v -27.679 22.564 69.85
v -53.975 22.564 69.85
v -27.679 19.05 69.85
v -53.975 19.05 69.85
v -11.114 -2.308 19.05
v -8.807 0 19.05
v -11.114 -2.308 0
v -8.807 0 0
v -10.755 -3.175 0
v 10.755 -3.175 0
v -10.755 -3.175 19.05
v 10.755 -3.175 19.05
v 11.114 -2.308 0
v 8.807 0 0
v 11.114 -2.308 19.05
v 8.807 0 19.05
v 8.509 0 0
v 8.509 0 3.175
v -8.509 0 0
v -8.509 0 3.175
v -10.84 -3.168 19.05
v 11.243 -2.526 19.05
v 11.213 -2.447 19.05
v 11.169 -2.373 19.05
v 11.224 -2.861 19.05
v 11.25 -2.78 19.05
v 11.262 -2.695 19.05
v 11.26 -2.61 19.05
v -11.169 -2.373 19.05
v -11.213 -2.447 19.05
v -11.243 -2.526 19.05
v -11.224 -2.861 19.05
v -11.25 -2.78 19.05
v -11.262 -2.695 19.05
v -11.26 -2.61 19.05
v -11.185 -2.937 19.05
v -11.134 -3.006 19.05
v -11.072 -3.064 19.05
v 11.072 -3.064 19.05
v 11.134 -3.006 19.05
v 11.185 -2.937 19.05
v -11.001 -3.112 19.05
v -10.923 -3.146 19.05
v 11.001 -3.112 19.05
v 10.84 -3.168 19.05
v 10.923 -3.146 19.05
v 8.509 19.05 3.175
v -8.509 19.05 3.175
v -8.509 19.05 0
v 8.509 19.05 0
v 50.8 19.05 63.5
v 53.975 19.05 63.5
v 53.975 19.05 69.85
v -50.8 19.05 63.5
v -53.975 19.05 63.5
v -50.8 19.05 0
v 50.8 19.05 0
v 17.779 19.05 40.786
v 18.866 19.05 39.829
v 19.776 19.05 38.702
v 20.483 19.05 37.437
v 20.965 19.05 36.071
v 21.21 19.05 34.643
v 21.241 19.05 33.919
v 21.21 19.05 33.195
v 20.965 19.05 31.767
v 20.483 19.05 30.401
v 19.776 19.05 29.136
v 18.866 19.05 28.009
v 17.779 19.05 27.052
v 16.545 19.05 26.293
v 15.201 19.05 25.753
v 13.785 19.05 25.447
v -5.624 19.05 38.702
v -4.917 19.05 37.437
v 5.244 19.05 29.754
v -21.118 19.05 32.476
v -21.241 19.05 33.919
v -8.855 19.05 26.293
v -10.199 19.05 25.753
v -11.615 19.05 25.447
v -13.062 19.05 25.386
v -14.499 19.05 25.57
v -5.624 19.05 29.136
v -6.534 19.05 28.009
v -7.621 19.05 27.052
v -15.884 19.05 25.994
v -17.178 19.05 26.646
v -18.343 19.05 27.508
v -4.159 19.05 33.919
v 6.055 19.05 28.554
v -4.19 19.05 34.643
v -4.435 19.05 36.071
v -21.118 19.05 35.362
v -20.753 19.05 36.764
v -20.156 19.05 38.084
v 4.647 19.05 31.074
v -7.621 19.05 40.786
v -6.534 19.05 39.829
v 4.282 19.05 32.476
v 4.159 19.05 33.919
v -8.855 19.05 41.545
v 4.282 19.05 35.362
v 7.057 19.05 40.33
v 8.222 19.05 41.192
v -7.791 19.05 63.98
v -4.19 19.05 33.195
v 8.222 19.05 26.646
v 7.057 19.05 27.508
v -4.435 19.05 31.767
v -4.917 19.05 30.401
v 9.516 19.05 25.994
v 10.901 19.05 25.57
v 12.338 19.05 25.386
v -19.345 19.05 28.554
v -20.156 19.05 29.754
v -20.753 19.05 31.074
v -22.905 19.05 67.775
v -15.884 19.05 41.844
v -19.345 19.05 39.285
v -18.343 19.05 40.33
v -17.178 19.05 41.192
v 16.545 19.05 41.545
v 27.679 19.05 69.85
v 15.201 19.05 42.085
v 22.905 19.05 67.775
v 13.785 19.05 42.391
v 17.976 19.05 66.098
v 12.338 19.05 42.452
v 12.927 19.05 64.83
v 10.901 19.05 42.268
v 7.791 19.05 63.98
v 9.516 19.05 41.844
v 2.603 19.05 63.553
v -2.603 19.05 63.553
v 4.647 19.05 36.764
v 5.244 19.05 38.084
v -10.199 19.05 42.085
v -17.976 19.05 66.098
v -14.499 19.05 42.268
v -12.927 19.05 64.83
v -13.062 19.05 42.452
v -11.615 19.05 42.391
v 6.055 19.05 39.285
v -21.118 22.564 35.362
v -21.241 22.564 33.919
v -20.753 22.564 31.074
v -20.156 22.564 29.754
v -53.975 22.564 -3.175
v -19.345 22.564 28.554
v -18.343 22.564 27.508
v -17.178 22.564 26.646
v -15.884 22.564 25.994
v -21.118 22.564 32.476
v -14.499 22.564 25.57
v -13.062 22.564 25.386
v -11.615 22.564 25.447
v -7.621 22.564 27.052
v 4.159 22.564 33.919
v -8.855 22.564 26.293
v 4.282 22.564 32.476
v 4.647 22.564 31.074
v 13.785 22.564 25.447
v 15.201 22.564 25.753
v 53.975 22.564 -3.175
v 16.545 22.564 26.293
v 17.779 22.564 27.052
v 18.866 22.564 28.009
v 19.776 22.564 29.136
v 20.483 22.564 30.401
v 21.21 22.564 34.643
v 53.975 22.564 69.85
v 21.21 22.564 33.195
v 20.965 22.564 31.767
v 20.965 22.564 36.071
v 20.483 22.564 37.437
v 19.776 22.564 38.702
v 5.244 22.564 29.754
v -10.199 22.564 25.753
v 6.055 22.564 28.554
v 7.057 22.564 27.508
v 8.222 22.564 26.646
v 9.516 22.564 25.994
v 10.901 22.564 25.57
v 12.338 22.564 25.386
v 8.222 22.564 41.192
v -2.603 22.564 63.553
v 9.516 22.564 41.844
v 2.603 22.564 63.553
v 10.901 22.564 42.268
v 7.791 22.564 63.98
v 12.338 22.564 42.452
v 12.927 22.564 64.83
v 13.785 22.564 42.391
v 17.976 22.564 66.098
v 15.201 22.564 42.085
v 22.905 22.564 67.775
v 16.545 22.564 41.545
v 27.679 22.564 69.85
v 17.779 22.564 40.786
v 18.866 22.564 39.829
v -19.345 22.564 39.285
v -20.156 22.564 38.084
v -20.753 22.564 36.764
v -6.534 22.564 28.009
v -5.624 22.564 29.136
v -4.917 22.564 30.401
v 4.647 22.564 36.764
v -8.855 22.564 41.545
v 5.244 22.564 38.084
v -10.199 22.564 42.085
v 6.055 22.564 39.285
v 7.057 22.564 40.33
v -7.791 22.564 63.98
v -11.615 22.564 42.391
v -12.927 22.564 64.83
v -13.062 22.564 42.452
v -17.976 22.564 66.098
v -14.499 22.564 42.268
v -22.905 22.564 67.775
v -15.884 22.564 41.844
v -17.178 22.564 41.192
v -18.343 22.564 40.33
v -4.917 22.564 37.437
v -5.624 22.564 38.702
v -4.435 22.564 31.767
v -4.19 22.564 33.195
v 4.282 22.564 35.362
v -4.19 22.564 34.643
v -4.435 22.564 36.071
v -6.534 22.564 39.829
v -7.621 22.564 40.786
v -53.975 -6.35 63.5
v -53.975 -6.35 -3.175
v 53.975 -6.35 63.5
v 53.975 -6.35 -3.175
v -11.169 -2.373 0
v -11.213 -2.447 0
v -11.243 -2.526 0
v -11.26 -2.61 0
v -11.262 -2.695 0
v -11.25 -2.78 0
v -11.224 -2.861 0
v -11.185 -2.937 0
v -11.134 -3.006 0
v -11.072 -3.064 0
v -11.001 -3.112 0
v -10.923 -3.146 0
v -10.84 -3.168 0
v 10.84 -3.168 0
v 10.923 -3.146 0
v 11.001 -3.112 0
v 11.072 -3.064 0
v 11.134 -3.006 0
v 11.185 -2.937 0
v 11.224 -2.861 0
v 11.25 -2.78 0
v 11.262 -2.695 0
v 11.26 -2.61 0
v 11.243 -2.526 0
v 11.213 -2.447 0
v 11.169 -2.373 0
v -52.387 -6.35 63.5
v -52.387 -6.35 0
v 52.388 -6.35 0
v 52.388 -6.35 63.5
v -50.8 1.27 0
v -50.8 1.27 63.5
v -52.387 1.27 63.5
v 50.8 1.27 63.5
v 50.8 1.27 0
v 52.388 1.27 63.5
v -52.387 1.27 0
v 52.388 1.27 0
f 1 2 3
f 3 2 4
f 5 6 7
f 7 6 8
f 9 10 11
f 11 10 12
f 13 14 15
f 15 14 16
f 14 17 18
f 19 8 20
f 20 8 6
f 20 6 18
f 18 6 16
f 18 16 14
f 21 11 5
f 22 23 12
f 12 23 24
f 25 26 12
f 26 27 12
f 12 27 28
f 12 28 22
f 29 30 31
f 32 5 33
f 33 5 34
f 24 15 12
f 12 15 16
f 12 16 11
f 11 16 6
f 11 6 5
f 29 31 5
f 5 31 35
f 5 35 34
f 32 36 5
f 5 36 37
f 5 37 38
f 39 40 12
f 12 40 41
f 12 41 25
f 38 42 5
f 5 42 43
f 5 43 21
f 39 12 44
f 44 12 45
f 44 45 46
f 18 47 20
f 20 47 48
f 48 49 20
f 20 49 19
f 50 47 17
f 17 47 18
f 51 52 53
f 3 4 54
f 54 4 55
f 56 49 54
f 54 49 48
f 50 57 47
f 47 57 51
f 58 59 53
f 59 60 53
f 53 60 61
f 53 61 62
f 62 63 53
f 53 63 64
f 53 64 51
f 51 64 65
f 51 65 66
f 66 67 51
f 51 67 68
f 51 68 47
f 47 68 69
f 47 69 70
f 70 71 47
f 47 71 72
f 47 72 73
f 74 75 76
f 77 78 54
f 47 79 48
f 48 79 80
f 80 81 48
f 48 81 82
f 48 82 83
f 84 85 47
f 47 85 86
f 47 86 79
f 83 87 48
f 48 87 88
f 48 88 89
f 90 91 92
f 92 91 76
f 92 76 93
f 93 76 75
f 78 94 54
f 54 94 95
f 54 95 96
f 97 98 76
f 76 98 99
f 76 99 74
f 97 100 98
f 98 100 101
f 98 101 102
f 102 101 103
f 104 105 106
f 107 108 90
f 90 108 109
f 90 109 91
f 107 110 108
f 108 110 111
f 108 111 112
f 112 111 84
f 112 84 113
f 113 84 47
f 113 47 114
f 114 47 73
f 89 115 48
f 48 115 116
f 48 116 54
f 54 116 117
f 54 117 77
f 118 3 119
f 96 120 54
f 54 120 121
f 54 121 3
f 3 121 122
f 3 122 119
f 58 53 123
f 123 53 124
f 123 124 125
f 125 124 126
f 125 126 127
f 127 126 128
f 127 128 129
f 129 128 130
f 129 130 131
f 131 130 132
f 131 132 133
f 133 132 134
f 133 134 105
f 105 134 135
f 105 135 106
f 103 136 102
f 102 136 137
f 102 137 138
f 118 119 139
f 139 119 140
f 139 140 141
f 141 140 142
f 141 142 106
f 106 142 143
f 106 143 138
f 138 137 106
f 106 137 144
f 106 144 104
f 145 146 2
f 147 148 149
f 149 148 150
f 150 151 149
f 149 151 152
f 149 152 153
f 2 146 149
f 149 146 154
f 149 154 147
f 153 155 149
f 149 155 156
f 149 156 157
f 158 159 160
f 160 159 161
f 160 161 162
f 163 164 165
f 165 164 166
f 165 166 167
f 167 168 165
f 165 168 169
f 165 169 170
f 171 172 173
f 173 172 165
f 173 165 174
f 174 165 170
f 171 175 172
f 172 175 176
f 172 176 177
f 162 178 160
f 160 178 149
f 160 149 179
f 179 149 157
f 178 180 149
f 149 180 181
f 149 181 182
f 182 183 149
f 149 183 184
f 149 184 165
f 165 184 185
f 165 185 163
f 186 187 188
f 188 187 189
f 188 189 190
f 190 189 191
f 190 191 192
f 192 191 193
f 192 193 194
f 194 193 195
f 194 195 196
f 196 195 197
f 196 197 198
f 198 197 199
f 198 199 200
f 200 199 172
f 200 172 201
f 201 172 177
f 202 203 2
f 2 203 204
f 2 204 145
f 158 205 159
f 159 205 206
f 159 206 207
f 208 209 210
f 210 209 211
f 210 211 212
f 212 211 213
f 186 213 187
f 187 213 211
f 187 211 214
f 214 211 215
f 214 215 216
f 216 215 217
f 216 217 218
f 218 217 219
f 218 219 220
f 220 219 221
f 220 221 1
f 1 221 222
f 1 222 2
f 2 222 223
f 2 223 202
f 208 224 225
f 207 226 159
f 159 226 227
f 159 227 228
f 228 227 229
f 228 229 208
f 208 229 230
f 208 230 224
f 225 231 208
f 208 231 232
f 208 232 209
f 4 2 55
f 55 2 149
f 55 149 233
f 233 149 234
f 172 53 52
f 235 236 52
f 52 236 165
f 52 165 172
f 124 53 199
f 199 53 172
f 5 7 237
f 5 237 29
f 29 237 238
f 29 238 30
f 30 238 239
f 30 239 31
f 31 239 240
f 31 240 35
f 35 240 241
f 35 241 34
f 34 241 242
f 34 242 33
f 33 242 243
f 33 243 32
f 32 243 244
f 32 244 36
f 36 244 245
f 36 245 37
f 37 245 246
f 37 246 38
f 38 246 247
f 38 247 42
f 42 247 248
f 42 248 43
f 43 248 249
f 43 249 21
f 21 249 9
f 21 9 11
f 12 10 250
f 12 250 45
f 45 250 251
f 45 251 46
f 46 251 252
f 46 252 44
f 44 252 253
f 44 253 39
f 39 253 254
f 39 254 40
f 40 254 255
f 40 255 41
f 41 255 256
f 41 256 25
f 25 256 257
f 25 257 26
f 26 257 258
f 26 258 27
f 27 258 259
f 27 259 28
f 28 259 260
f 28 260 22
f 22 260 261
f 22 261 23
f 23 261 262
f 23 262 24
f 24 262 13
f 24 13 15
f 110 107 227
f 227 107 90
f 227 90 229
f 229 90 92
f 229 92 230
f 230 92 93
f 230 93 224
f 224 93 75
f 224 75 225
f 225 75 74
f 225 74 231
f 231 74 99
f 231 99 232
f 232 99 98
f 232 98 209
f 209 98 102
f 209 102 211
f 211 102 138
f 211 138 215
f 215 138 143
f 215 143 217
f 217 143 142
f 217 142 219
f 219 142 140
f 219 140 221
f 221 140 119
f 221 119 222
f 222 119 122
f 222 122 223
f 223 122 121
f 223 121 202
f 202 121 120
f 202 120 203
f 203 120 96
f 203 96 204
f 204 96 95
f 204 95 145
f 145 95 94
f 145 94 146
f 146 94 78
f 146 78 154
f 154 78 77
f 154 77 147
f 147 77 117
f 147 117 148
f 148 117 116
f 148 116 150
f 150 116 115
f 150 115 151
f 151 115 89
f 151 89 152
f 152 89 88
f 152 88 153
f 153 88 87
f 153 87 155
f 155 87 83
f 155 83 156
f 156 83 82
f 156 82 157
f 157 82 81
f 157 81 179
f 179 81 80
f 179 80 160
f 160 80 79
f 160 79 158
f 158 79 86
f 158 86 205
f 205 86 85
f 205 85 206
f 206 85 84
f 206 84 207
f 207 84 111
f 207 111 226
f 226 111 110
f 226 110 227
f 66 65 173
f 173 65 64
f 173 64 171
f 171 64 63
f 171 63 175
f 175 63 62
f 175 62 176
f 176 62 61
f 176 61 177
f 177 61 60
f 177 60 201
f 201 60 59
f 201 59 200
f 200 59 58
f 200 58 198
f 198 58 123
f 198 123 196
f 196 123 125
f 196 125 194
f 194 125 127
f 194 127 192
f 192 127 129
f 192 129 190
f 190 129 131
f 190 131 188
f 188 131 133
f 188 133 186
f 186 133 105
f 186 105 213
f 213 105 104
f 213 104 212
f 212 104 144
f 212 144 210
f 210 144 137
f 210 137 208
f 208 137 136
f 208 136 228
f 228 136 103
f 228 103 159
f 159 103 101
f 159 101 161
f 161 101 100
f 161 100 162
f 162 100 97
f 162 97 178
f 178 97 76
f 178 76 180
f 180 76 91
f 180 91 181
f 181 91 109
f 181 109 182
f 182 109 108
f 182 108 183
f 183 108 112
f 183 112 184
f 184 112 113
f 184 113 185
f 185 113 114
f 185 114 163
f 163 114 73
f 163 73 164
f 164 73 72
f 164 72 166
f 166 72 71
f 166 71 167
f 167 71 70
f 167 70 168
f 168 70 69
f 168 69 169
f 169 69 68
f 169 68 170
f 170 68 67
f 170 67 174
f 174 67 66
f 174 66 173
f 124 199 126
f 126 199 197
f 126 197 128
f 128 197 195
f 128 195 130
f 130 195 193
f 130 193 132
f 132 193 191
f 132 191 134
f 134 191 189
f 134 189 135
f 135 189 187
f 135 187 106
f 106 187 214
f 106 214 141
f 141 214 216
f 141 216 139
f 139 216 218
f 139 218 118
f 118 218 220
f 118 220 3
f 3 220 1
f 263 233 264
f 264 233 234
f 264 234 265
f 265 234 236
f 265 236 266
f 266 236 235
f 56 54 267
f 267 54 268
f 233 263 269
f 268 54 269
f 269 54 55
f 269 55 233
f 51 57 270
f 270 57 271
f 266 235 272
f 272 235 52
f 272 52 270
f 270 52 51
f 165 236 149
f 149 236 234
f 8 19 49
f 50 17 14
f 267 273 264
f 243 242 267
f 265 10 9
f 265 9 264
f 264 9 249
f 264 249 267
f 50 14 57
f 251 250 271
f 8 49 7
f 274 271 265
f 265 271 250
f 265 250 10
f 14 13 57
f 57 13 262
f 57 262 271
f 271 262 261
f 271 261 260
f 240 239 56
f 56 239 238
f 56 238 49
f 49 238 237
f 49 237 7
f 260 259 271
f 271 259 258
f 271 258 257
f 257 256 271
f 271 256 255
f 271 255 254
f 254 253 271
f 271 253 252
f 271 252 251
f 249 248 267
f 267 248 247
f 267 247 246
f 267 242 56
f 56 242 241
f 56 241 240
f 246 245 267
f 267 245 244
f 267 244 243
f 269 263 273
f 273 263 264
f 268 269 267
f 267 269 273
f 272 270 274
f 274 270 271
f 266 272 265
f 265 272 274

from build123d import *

# Parameters (mm, degrees)
BOSS_EXTRUDE1_DEPTH = 19.05
SKETCH2_W           = 17.018
SKETCH2_H           = 22.225
BOSS_EXTRUDE2_DEPTH = 3.175
SKETCH3_W           = 107.95
SKETCH3_H           = 3.513776003
BOSS_EXTRUDE3_DEPTH = 69.85
FILLET1_R           = 0.508
SKETCH4_R           = 8.54075
CUT_EXTRUDE1_DEPTH  = 26.738776003
SKETCH8_R           = 63.5
CUT_EXTRUDE2_DEPTH  = 26.738776003
SKETCH9_W           = 3.175
SKETCH9_H           = 28.913776003
BOSS_EXTRUDE4_DEPTH = 63.5
SKETCH10_W          = 107.95
SKETCH10_H          = 28.913776003
BOSS_EXTRUDE5_DEPTH = 3.175
SKETCH11_W          = 1.5875
SKETCH11_H          = 7.62
CUT_EXTRUDE3_DEPTH  = 63.5


with BuildPart() as part:
    # Sketch1 → Boss-Extrude1 (new body)
    with BuildSketch(Plane.XY):
        Polygon((8.80657951, 0), (-8.80657951, 0), (-11.98157951, -3.175), (11.98157951, -3.175), align=None)
    extrude(amount=BOSS_EXTRUDE1_DEPTH)

    # Sketch2 → Boss-Extrude2 (add)
    with BuildSketch(Plane(origin=(0, 0, 0), x_dir=(-1, 0, 0), z_dir=(0, 0, -1))):
        with Locations((0, 7.9375)):
            Rectangle(SKETCH2_W, SKETCH2_H)
    extrude(amount=-BOSS_EXTRUDE2_DEPTH)

    # Sketch3 → Boss-Extrude3 (add)
    with BuildSketch(Plane(origin=(0, 0, 0), x_dir=(-1, 0, 0), z_dir=(0, 0, -1))):
        with Locations((0, 20.806888001)):
            Rectangle(SKETCH3_W, SKETCH3_H)
    extrude(amount=-BOSS_EXTRUDE3_DEPTH)

    # Fillet1
    fillet1_edges = [part.edges().sort_by_distance(p)[0] for p in [
        (11.98157951, -3.175, 9.525),
        (-11.98157951, -3.175, 9.525),
    ]]
    fillet(fillet1_edges, radius=FILLET1_R)

    # Sketch4 → Cut-Extrude1 (cut, through all)
    with BuildSketch(Plane(origin=(0, 22.563776003, 0), x_dir=(1, 0, 0), z_dir=(0, 1, 0))):
        with Locations((12.7, -33.9190628)):
            Circle(SKETCH4_R)
        with Locations((-12.7, -33.9190628)):
            Circle(SKETCH4_R)
    extrude(amount=-CUT_EXTRUDE1_DEPTH, mode=Mode.SUBTRACT)

    # Sketch8 → Cut-Extrude2 (cut, through all)
    with BuildSketch(Plane(origin=(0, 22.563776003, 0), x_dir=(1, 0, 0), z_dir=(0, 1, 0))):
        with Locations((0, -127)):
            Circle(SKETCH8_R)
    extrude(amount=-CUT_EXTRUDE2_DEPTH, mode=Mode.SUBTRACT)

    # Sketch9 → Boss-Extrude4 (add)
    with BuildSketch(Plane(origin=(0, 0, 0), x_dir=(-1, 0, 0), z_dir=(0, 0, -1))):
        with Locations((52.3875, 8.106888001)):
            Rectangle(SKETCH9_W, SKETCH9_H)
        with Locations((-52.3875, 8.106888001)):
            Rectangle(SKETCH9_W, SKETCH9_H)
    extrude(amount=-BOSS_EXTRUDE4_DEPTH)

    # Sketch10 → Boss-Extrude5 (add)
    with BuildSketch(Plane(origin=(0, 0, 0), x_dir=(-1, 0, 0), z_dir=(0, 0, -1))):
        with Locations((0, 8.106888001)):
            Rectangle(SKETCH10_W, SKETCH10_H)
    extrude(amount=BOSS_EXTRUDE5_DEPTH)

    # Sketch11 → Cut-Extrude3 (cut)
    with BuildSketch(Plane.XY.offset(63.5)):
        with Locations((51.59375, -2.54)):
            Rectangle(SKETCH11_W, SKETCH11_H)
        with Locations((-51.59375, -2.54)):
            Rectangle(SKETCH11_W, SKETCH11_H)
    extrude(amount=-CUT_EXTRUDE3_DEPTH, mode=Mode.SUBTRACT)


solid = part.part
